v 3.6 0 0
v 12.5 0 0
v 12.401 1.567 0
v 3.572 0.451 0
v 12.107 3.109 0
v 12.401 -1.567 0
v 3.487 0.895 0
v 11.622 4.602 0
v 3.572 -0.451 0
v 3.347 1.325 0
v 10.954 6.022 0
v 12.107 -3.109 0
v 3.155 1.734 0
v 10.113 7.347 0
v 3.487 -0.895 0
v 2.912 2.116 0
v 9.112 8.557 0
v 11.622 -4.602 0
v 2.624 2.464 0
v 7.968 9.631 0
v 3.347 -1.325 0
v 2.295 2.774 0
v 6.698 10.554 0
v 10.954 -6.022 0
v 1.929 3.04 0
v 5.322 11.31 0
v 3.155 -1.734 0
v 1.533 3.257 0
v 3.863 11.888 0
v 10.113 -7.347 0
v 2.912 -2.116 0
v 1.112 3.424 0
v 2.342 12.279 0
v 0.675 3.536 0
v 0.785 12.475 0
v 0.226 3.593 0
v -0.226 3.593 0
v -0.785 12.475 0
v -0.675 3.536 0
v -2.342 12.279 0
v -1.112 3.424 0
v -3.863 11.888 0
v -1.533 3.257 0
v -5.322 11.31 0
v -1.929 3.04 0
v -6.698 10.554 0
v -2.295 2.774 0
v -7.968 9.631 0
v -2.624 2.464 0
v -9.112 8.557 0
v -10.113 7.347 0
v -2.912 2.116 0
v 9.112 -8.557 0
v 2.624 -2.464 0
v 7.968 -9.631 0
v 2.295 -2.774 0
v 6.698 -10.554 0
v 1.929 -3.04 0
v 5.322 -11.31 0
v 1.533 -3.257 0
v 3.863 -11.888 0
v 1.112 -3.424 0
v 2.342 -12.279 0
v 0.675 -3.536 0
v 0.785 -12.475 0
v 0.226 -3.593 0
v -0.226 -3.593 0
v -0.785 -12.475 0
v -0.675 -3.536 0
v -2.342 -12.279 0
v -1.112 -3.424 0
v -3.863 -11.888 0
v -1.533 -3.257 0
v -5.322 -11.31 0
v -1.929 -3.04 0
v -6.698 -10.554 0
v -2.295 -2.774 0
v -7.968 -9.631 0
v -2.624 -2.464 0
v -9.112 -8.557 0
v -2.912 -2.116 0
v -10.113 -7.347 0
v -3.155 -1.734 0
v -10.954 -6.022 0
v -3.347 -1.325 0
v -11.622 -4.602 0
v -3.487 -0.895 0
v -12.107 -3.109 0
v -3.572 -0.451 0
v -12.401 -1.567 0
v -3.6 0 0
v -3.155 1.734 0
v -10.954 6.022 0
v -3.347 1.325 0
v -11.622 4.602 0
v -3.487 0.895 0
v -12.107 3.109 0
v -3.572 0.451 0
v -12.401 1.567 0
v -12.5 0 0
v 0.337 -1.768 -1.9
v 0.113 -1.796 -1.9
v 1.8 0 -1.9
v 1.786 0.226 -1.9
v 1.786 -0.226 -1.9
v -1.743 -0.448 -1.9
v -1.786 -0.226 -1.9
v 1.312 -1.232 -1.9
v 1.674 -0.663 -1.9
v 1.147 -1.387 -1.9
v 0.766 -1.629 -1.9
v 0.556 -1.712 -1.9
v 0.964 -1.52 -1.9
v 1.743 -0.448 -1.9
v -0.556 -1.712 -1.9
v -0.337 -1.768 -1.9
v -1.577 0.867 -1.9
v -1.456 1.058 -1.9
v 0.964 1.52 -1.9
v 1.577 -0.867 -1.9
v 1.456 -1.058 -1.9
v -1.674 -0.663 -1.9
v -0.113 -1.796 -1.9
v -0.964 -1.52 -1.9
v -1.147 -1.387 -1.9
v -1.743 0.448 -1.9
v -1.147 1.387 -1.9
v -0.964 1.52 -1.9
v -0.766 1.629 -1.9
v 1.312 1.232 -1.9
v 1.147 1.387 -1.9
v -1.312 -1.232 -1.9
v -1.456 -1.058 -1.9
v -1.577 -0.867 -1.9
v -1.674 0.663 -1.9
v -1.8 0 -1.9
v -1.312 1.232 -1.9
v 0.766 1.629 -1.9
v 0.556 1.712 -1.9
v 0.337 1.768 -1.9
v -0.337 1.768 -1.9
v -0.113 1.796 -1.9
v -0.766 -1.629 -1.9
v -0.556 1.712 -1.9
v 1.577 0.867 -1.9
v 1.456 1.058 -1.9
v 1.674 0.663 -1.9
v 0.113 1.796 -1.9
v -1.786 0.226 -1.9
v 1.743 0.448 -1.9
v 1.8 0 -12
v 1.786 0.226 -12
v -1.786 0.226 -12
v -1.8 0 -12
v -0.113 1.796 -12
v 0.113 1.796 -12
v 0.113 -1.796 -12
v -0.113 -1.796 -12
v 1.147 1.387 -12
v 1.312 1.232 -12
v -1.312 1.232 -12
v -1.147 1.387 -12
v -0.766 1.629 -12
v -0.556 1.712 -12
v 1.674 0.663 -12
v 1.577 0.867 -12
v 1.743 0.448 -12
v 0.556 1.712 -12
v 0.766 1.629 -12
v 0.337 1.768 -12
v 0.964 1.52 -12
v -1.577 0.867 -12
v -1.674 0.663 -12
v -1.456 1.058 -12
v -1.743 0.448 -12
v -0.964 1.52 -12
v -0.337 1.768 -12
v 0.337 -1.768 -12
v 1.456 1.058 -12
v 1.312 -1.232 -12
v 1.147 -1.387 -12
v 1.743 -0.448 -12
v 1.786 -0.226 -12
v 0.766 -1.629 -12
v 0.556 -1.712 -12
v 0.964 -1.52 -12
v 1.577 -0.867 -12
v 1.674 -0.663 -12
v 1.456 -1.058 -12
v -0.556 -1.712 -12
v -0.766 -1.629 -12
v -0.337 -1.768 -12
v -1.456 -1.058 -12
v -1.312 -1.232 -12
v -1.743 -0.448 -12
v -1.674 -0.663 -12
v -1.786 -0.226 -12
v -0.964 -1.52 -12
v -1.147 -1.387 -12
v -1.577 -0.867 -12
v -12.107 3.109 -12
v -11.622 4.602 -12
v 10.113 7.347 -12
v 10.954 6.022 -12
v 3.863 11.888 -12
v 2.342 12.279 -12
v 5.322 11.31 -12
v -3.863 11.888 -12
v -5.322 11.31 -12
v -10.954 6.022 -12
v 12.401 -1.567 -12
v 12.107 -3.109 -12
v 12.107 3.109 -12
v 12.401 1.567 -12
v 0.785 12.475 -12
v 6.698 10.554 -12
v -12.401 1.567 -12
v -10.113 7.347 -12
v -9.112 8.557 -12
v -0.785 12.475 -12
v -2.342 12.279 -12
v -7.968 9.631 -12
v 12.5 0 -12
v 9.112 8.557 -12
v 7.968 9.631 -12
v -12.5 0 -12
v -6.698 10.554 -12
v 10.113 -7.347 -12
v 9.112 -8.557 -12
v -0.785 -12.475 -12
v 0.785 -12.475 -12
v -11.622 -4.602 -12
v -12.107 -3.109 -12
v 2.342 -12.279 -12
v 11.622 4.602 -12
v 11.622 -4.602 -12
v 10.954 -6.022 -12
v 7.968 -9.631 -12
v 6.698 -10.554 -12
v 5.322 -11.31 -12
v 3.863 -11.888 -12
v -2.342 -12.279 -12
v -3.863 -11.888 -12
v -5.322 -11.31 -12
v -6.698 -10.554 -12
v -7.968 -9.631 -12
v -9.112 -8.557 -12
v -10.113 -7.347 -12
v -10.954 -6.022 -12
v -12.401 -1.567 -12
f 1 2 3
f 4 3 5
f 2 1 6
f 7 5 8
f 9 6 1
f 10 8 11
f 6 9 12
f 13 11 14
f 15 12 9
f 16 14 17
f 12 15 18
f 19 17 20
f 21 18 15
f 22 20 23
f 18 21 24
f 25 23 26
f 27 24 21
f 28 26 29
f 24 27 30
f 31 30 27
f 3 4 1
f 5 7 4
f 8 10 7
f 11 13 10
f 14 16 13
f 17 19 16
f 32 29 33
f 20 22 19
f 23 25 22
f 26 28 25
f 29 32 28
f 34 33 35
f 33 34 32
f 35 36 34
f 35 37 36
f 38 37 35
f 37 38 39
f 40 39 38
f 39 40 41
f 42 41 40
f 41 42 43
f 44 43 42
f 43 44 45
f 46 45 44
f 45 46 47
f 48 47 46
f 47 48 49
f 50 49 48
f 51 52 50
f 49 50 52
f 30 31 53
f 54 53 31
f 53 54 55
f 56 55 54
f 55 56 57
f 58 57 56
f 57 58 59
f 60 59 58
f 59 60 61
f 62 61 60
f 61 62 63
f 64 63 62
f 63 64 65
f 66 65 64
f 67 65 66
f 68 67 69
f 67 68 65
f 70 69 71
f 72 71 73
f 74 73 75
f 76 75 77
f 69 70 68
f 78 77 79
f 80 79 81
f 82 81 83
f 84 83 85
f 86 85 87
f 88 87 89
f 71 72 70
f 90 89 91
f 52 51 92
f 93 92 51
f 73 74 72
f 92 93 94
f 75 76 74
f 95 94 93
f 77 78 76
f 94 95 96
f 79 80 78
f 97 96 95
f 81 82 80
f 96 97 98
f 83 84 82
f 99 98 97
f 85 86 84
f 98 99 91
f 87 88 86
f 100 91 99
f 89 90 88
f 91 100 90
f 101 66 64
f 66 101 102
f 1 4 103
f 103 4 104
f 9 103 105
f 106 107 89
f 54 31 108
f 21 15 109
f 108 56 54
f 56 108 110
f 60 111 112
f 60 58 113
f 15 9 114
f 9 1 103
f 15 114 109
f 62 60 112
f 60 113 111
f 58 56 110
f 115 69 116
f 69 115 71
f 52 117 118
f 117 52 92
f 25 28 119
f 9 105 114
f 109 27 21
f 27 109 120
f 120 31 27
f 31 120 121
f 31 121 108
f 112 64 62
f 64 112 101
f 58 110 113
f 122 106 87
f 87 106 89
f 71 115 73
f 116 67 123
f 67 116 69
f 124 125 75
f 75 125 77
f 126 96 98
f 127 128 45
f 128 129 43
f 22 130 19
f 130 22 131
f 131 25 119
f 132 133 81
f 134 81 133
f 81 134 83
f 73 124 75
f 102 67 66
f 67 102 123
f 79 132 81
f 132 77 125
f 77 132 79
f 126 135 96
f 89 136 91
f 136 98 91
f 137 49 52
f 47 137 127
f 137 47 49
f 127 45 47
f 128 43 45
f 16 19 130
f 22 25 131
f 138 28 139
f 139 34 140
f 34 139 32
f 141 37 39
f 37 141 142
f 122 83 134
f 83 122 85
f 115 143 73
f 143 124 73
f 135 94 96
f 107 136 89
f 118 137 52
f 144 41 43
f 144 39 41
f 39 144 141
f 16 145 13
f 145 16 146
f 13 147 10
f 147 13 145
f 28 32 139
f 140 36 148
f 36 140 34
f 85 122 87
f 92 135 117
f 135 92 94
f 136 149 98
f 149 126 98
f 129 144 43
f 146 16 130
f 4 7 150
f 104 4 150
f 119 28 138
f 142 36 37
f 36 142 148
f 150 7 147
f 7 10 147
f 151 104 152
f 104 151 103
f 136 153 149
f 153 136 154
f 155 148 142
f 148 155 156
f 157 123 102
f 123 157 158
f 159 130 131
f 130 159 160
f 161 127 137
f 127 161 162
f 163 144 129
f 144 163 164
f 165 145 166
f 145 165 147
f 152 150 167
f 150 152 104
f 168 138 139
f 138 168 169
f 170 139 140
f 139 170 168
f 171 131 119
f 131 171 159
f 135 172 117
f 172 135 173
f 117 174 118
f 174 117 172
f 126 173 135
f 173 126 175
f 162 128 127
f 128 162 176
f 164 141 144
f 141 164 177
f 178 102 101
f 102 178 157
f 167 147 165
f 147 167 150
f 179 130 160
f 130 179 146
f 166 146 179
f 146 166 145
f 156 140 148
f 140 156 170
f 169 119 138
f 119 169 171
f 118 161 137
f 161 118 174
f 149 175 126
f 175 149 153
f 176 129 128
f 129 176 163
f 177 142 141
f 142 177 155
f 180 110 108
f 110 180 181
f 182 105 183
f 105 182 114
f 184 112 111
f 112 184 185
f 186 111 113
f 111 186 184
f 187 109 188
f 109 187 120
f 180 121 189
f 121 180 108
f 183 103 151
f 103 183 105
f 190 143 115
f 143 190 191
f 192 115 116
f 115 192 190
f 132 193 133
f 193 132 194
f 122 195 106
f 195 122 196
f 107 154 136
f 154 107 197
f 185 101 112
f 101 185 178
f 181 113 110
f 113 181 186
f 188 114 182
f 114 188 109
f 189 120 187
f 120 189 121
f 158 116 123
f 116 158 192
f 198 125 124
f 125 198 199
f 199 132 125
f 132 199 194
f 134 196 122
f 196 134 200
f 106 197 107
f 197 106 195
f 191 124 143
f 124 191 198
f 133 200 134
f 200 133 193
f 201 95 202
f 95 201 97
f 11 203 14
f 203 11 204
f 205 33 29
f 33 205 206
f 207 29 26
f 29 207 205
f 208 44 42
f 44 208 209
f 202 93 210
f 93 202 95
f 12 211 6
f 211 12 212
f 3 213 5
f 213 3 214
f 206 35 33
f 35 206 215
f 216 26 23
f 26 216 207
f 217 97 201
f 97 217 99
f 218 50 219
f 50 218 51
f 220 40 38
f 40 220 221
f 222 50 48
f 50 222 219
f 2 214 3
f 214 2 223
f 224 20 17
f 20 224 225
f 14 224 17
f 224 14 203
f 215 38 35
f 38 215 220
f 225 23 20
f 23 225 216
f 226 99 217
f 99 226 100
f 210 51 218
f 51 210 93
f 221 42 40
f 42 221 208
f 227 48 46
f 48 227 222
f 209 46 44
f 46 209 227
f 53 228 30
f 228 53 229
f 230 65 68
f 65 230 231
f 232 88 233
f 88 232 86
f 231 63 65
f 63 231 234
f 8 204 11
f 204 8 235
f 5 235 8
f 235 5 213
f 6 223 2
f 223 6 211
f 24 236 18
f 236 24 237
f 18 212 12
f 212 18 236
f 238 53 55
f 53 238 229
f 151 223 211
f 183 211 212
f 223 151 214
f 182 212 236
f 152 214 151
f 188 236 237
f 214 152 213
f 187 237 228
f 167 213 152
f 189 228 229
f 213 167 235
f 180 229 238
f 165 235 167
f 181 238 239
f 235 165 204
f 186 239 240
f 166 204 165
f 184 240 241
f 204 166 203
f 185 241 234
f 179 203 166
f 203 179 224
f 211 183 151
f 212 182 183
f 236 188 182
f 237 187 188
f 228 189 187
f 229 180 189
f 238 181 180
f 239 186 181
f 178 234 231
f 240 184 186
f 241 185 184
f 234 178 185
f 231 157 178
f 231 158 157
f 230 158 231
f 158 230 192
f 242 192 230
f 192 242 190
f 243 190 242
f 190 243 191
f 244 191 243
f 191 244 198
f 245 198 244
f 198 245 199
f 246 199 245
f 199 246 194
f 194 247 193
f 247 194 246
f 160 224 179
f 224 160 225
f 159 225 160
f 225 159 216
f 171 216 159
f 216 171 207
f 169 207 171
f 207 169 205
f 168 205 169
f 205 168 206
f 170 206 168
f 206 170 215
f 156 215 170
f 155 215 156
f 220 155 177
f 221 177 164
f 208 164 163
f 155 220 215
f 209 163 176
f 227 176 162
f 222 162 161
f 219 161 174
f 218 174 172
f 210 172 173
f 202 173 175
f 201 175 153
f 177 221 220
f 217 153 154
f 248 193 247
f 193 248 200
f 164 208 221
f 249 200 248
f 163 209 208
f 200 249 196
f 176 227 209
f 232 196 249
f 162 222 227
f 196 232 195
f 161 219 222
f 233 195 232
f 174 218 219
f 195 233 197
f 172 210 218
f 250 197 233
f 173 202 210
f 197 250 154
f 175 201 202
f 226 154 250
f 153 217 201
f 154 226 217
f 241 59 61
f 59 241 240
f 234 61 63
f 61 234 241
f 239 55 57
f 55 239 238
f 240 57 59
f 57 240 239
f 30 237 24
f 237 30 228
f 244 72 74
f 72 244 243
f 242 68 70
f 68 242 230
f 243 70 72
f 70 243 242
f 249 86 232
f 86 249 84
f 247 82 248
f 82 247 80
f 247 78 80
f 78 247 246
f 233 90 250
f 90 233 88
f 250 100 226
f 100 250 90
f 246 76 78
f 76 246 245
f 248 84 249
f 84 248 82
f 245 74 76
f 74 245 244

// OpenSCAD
$fn = 50;

difference() {
	union() {
		translate(v = [0, 0, -12.0]) {
			cylinder(h = 12, r = 12.5);
		}
	}
	union() {
		translate(v = [0, 0, 0]) {
			rotate(a = [0, 0, 0]) {
				difference() {
					union() {
						translate(v = [0, 0, -15.0]) {
							cylinder(h = 15, r = 1.5);
						}
						translate(v = [0, 0, -1.9]) {
							cylinder(h = 1.9, r1 = 1.8, r2 = 3.6);
						}
						translate(v = [0, 0, -15.0]) {
							cylinder(h = 15, r = 1.8);
						}
						translate(v = [0, 0, -15.0]) {
							cylinder(h = 15, r = 1.5);
						}
					}
					union();
				}
			}
		}
	}
}
